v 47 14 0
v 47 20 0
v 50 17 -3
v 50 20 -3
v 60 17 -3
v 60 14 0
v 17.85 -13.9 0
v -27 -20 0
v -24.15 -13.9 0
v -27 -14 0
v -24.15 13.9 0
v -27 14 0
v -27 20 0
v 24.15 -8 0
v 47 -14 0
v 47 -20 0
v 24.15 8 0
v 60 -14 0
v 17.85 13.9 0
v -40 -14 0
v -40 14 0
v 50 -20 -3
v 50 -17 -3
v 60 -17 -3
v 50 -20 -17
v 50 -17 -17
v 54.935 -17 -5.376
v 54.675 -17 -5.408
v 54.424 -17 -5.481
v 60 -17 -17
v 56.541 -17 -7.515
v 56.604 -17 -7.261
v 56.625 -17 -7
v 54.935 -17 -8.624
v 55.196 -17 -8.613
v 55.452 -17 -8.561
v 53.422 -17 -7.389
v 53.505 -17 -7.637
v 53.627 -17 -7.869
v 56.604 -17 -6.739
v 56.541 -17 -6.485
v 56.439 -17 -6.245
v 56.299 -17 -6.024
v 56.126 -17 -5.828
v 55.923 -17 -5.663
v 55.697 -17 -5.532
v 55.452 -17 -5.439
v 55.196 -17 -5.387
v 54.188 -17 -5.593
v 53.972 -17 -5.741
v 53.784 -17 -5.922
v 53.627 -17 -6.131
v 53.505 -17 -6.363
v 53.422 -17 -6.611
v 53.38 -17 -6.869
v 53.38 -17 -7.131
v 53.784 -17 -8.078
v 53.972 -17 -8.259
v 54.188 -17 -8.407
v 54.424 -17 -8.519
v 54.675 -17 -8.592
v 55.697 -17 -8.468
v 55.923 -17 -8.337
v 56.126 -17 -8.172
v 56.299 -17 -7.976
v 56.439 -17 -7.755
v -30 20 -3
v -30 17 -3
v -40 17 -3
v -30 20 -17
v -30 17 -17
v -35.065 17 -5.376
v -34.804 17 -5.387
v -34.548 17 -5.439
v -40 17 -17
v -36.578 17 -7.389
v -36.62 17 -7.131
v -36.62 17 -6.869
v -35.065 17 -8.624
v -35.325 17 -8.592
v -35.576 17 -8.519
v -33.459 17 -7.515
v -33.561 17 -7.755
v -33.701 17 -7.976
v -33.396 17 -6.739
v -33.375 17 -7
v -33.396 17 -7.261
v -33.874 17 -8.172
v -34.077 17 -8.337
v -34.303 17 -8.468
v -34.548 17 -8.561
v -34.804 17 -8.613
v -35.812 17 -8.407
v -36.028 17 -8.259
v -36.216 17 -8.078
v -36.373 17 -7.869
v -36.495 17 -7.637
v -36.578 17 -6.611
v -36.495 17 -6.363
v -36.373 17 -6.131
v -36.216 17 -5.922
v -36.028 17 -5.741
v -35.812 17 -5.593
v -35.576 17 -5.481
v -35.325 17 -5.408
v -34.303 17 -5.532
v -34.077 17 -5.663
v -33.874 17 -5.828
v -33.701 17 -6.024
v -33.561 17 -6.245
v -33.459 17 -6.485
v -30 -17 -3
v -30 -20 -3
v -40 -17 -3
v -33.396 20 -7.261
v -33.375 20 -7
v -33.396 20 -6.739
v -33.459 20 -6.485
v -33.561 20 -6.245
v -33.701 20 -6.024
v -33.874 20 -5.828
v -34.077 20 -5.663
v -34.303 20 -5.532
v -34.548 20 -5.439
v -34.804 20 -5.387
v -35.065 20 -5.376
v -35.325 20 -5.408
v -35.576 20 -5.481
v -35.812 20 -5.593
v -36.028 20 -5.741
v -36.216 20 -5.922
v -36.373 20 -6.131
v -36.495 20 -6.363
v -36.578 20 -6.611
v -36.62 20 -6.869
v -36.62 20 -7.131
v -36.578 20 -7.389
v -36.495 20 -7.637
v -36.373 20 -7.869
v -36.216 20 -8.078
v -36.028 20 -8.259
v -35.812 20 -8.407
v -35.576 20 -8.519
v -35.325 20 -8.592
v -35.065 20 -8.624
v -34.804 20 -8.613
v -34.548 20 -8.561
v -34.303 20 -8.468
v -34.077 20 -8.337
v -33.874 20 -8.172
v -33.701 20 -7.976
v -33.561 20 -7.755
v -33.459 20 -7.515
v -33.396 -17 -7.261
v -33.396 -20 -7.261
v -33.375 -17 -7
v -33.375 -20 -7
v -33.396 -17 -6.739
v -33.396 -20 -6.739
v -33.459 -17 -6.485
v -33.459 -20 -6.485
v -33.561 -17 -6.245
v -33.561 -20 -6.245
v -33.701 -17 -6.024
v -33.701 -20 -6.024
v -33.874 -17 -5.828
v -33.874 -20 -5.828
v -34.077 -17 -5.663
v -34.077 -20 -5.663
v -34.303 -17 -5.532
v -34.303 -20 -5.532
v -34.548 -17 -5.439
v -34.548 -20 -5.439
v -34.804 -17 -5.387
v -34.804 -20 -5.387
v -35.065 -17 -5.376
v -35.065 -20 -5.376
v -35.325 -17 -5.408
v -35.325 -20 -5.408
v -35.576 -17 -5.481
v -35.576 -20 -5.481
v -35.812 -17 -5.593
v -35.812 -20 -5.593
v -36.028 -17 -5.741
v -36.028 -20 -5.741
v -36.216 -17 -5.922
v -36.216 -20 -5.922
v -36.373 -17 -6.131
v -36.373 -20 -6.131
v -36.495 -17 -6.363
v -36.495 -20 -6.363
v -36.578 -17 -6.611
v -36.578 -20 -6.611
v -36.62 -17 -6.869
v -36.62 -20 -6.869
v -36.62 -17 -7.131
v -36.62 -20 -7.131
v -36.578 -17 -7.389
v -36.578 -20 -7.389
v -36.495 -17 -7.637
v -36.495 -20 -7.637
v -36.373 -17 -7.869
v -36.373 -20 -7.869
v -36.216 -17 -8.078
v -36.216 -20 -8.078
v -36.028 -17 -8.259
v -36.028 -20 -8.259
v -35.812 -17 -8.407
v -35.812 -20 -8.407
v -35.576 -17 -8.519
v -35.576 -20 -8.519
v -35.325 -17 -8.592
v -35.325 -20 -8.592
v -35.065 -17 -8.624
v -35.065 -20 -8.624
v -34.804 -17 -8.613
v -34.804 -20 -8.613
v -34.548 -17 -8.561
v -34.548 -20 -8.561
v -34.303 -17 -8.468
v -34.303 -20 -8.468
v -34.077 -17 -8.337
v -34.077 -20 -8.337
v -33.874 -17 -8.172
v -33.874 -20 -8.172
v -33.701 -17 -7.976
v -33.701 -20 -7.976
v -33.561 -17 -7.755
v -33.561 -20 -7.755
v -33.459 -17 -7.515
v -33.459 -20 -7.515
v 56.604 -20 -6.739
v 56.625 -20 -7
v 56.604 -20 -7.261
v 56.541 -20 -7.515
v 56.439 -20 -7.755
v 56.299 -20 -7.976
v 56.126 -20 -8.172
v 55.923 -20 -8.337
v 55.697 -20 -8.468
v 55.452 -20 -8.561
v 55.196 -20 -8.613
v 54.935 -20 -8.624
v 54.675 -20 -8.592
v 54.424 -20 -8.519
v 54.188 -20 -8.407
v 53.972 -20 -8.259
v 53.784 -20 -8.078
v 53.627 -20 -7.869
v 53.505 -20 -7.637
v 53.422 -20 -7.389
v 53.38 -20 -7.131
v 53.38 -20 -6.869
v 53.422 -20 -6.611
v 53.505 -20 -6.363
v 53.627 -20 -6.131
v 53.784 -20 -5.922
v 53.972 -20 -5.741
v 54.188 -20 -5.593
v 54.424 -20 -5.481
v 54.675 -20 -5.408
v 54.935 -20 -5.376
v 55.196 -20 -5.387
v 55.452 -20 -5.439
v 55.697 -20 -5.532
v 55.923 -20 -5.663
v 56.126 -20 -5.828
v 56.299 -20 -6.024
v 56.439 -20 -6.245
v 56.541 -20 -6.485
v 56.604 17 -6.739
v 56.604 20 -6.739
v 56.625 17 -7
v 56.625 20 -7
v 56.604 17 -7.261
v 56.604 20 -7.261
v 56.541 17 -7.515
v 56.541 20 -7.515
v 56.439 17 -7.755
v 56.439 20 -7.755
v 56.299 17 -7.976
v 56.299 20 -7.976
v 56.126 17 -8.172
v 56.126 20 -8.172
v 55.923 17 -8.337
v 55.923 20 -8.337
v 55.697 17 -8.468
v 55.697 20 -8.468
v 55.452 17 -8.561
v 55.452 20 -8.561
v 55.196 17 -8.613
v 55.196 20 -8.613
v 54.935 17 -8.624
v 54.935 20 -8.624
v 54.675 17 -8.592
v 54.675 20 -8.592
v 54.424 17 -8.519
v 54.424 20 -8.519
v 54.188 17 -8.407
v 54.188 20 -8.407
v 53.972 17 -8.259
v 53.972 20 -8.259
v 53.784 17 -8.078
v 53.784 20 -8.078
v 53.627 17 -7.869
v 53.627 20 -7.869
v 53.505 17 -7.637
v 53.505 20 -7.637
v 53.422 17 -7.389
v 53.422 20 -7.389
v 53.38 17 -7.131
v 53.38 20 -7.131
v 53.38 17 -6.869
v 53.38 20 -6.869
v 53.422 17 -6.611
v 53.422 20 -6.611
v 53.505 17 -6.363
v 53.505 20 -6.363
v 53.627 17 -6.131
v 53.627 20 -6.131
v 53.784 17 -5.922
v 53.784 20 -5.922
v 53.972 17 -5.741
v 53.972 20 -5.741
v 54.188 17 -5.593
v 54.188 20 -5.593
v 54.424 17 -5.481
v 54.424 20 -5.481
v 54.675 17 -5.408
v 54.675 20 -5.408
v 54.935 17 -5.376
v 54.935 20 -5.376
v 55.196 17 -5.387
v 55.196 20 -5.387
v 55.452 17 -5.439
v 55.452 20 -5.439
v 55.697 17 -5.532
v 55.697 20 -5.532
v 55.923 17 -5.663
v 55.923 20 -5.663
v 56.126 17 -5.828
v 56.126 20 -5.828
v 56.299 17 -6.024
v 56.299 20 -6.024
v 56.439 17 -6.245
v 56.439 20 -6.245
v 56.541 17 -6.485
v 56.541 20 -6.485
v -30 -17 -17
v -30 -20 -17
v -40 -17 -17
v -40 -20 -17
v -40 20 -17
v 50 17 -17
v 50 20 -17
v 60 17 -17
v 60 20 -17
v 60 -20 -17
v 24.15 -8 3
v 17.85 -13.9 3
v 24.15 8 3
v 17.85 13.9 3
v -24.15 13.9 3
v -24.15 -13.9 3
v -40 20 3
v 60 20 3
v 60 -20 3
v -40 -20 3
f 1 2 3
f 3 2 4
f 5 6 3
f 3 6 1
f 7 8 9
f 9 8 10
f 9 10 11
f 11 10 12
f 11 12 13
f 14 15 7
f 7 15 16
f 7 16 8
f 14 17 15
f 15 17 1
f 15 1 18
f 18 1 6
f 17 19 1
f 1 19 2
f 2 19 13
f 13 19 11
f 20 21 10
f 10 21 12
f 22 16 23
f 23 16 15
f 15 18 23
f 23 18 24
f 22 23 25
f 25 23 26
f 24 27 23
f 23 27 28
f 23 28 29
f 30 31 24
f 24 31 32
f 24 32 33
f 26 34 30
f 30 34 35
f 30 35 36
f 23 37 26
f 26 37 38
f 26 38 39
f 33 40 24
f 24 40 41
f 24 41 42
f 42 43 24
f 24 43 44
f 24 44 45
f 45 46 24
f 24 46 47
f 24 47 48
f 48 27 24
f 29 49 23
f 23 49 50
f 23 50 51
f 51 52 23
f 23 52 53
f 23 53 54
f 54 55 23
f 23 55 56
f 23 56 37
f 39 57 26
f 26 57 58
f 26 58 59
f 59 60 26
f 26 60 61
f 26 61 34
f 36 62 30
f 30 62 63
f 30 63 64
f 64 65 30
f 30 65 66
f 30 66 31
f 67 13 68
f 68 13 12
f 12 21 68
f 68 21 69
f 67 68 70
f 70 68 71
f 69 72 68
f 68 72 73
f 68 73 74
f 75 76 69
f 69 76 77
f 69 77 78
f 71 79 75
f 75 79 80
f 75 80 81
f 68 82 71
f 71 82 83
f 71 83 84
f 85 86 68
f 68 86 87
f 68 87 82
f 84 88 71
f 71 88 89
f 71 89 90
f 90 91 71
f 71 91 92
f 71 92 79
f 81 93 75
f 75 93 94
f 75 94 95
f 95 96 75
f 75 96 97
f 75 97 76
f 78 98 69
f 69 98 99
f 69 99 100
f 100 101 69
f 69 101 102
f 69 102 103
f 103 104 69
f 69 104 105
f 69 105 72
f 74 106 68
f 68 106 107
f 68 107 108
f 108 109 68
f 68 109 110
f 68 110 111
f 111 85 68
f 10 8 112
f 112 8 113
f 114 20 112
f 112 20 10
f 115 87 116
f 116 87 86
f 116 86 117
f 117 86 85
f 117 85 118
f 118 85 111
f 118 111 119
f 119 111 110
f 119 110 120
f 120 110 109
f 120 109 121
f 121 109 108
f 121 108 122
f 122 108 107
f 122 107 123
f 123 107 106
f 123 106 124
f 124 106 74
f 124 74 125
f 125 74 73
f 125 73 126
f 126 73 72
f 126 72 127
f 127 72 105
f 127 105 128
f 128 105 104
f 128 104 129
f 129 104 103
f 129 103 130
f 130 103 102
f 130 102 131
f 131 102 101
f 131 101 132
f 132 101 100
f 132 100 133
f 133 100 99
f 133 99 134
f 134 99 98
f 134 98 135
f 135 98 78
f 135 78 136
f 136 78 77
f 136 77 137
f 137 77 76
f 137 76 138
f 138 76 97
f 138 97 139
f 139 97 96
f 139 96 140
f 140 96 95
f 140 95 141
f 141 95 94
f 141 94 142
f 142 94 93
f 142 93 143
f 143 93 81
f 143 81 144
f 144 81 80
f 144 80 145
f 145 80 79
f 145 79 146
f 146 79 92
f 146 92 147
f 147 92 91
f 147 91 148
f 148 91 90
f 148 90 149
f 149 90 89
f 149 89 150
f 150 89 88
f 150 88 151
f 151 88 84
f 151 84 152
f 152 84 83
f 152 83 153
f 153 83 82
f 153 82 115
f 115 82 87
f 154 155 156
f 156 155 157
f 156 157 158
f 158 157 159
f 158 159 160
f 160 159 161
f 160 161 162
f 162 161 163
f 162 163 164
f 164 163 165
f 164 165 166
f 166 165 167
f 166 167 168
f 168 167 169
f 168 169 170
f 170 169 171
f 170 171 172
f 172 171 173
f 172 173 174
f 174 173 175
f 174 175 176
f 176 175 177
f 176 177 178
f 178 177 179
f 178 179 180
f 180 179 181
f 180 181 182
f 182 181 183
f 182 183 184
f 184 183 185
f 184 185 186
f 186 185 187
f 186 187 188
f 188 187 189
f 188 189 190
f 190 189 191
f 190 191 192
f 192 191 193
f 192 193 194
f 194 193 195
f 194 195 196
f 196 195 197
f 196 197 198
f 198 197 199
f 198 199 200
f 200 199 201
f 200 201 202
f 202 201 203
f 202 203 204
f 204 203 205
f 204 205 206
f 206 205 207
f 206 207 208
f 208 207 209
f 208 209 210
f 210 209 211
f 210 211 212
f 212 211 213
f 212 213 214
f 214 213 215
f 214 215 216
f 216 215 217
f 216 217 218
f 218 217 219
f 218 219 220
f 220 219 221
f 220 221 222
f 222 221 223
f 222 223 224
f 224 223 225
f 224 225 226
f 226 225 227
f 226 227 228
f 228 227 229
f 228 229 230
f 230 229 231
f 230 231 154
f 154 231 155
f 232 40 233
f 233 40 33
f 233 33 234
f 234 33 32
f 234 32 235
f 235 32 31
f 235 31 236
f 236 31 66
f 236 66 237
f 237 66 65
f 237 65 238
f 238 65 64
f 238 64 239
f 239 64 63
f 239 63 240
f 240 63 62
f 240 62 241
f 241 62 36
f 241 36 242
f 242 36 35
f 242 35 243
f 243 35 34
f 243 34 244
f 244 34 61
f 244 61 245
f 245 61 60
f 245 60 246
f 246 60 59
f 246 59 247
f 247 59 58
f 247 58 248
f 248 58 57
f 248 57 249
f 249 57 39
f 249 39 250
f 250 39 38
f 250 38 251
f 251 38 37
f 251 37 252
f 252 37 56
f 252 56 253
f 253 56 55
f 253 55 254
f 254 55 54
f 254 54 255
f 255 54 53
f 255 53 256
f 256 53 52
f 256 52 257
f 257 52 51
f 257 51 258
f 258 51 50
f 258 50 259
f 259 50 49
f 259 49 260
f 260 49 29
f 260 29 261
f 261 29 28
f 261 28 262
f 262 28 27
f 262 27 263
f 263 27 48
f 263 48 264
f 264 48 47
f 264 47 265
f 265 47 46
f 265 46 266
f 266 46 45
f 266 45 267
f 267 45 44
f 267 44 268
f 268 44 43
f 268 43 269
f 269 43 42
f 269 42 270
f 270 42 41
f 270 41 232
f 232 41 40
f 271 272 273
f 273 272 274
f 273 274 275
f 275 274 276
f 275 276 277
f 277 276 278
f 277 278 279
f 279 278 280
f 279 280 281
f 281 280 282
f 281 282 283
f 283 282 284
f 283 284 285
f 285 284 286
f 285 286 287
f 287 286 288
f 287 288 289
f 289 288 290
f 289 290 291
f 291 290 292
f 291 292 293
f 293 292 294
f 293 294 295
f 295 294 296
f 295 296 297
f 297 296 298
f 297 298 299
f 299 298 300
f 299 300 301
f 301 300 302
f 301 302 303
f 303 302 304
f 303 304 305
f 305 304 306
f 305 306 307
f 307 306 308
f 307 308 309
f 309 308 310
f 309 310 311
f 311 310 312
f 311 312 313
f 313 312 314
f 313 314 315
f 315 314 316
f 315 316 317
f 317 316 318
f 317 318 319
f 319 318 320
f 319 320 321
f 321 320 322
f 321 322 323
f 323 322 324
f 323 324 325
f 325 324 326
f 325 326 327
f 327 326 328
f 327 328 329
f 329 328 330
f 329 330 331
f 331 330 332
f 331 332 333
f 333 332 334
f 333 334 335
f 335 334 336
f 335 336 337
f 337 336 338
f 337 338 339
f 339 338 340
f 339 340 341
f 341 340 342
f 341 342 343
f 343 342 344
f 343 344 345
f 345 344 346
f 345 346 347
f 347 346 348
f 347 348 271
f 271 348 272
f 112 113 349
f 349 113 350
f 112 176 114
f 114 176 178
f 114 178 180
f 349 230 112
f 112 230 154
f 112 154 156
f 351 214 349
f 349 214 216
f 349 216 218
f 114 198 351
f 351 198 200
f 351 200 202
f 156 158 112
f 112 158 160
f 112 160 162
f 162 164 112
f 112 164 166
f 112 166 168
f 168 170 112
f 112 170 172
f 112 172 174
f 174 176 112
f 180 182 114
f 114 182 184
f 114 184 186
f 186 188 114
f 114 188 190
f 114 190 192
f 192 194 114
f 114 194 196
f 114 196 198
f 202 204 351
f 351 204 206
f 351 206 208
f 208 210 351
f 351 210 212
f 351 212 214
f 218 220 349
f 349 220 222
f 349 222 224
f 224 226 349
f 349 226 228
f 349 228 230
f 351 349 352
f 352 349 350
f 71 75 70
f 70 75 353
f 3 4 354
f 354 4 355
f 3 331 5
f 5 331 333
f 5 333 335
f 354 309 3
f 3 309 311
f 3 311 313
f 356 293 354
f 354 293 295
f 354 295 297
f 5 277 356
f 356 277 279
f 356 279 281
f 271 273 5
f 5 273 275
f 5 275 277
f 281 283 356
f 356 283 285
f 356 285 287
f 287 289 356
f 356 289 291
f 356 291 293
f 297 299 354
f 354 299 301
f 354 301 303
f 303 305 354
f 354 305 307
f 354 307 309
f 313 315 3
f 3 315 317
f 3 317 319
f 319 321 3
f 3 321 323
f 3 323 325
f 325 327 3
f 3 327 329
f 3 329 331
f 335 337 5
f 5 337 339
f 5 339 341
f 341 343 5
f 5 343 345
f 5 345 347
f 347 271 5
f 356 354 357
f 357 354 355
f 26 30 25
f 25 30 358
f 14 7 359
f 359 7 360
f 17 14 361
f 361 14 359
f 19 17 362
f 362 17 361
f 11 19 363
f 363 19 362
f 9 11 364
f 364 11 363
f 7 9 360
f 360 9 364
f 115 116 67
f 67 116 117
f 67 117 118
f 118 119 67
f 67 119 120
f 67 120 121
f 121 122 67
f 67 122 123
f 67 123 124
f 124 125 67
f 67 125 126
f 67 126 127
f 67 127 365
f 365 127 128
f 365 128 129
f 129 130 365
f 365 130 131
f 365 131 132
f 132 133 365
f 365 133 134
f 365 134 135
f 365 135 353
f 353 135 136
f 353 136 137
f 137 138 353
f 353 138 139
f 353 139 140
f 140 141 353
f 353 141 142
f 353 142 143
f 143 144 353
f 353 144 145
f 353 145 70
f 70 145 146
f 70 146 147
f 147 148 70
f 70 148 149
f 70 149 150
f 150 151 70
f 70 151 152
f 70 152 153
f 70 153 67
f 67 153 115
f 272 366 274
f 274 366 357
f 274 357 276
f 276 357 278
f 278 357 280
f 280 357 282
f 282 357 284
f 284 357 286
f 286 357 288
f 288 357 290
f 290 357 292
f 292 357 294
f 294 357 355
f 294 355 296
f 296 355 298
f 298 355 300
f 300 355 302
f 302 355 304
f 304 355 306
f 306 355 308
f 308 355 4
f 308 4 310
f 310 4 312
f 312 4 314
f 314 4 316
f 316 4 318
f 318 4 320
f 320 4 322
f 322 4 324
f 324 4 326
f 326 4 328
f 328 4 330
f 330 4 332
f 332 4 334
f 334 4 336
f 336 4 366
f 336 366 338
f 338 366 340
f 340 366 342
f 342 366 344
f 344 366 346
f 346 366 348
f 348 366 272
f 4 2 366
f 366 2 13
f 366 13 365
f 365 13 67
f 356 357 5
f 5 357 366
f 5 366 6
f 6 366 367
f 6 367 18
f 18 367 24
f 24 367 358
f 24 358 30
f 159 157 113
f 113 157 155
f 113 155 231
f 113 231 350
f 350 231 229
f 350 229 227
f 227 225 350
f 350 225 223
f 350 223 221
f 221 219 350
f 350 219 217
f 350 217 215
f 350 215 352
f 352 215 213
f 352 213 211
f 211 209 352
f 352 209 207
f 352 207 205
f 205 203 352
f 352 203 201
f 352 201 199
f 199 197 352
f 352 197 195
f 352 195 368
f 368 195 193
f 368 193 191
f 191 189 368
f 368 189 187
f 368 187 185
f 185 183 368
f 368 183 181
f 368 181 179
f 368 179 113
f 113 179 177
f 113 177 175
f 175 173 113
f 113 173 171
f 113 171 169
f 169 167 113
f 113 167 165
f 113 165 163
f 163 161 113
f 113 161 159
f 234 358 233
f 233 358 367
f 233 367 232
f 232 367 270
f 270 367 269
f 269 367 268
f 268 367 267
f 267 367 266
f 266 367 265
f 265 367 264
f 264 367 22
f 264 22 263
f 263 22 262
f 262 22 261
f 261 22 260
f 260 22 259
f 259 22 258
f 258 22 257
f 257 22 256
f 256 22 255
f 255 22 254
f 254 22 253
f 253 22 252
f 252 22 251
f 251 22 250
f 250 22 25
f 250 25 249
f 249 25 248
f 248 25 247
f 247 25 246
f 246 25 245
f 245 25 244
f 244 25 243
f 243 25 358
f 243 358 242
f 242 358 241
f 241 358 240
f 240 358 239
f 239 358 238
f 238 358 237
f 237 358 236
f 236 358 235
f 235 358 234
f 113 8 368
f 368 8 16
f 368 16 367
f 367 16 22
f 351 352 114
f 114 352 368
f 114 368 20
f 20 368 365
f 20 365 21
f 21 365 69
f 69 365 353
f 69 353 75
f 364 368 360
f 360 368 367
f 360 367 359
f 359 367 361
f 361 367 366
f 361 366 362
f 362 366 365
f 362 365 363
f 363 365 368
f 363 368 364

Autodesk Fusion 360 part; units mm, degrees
sketch "Sketch1" plane through (0, 0, 0) normal (0, 0, 1) x (1, 0, 0)
  line L0 (17.85, 0) -> (24.15, 0)
  line L1 (24.15, -8) -> (17.85, -13.9)
  line L2 (17.85, 8) -> (17.85, 0)
  line L3 (17.85, -13.9) -> (17.85, 13.9)
  line L4 (17.85, -8) -> (17.85, 0)
  line L5 (17.85, 0) -> (24.15, 0)
  line L6 (17.85, 13.9) -> (-24.15, 13.9)
  line L7 (24.15, 0) -> (24.15, -8)
  line L8 (-24.15, 13.9) -> (24.15, -13.9) construction
  line L9 (24.15, 8) -> (23.8007, 8)
  line L10 (24.15, -8) -> (17.85, -8)
  line L11 (24.15, 8) -> (17.85, 8)
  line L12 (24.15, 0) -> (24.15, 8)
  line L13 (17.85, 13.9) -> (24.15, 8)
  line L14 (-24.15, 13.9) -> (24.15, 13.9)
  line L15 (24.15, 13.9) -> (24.15, -13.9)
  line L16 (24.15, -13.9) -> (-24.15, -13.9)
  line L17 (-24.15, -13.9) -> (-24.15, 13.9)
  line L18 (24.15, 13.9) -> (-24.15, -13.9) construction
  line L19 (60, -20) -> (-40, -20)
  line L20 (-40, -20) -> (-40, 20)
  line L21 (-40, 20) -> (60, 20)
  line L22 (60, 20) -> (60, -20)
  line L23 (60, 20) -> (50, 20)
  line L24 (50, 20) -> (50, 17)
  line L25 (50, 17) -> (60, 17)
  line L26 (60, 17) -> (60, 20)
  line L27 (60, -20) -> (50, -20)
  line L28 (50, -20) -> (50, -17)
  line L29 (50, -17) -> (60, -17)
  line L30 (60, -17) -> (60, -20)
  line L31 (-40, -20) -> (-30, -20)
  line L32 (-30, -20) -> (-30, -17)
  line L33 (-30, -17) -> (-40, -17)
  line L34 (-40, -17) -> (-40, -20)
  line L35 (-40, 20) -> (-30, 20)
  line L36 (-30, 20) -> (-30, 17)
  line L37 (-30, 17) -> (-40, 17)
  line L38 (-40, 17) -> (-40, 20)
  dimension "d1" = 48.3
  dimension "d2" = 27.8
  dimension "d3" = 42
  dimension "d4" = 8
  dimension "d5" = 8
  dimension "d6" = 100
  dimension "d7" = 40
  dimension "d8" = 3
  dimension "d9" = 10
  dimension "d10" = 10
  dimension "d11" = 3
  dimension "d12" = 3
  dimension "d13" = 10
  dimension "d14" = 10
  dimension "d15" = 3
  dimension "d25" = 6.1
  dimension "d26" = 15.85
extrude "Extrude1" add sketch "Sketch1" along normal blind 3 contours L1 L15 L16 | L13 L14 L15 | L19 L22 L27 L28 L29 L30 | L19 L20 L21 L22 L24 L25 L28 L29 L32 L33 L36 L37 | L19 L20 L31 L32 L33 L34 | L21 L22 L23 L24 L25 L26 | L20 L21 L35 L36 L37 L38
extrude "Extrude2" add sketch "Sketch1" against normal blind 17 contours L19 L22 L27 L28 L29 L30 | L19 L20 L31 L32 L33 L34 | L21 L22 L23 L24 L25 L26 | L20 L21 L35 L36 L37 L38
sketch "Sketch2" plane through (0, 20, 0) normal (0, 1, 0) x (-1, 0, 0)
  line L0 (-50, 0) -> (30, 0)
  line L1 (30, 0) -> (30, -17)
  line L2 (30, -17) -> (40, -17)
  line L3 (40, -17) -> (40, 3)
  line L4 (40, 3) -> (-60, 3)
  line L5 (-60, 3) -> (-60, -17)
  line L6 (-60, -17) -> (-50, -17)
  line L7 (-50, -17) -> (-50, 0)
  circle A0 centre (35, -7) radius 1.625
  circle A1 centre (-55, -7) radius 1.625
  dimension "d20" = 3.25
  dimension "d21" = 3.25
  dimension "d27" = 5
extrude "Extrude3" cut sketch "Sketch2" against normal up to surface (40 mm away) contours A0 | A1
chamfer "Chamfer1" distance 3 angle 45 8 edges at (-35, -17, 0) (-35, 17, 0) (55, -17, 0) (55, 17, 0) (50, 18.5, 0) (50, -18.5, 0) (-30, -18.5, 0) (-30, 18.5, 0)
